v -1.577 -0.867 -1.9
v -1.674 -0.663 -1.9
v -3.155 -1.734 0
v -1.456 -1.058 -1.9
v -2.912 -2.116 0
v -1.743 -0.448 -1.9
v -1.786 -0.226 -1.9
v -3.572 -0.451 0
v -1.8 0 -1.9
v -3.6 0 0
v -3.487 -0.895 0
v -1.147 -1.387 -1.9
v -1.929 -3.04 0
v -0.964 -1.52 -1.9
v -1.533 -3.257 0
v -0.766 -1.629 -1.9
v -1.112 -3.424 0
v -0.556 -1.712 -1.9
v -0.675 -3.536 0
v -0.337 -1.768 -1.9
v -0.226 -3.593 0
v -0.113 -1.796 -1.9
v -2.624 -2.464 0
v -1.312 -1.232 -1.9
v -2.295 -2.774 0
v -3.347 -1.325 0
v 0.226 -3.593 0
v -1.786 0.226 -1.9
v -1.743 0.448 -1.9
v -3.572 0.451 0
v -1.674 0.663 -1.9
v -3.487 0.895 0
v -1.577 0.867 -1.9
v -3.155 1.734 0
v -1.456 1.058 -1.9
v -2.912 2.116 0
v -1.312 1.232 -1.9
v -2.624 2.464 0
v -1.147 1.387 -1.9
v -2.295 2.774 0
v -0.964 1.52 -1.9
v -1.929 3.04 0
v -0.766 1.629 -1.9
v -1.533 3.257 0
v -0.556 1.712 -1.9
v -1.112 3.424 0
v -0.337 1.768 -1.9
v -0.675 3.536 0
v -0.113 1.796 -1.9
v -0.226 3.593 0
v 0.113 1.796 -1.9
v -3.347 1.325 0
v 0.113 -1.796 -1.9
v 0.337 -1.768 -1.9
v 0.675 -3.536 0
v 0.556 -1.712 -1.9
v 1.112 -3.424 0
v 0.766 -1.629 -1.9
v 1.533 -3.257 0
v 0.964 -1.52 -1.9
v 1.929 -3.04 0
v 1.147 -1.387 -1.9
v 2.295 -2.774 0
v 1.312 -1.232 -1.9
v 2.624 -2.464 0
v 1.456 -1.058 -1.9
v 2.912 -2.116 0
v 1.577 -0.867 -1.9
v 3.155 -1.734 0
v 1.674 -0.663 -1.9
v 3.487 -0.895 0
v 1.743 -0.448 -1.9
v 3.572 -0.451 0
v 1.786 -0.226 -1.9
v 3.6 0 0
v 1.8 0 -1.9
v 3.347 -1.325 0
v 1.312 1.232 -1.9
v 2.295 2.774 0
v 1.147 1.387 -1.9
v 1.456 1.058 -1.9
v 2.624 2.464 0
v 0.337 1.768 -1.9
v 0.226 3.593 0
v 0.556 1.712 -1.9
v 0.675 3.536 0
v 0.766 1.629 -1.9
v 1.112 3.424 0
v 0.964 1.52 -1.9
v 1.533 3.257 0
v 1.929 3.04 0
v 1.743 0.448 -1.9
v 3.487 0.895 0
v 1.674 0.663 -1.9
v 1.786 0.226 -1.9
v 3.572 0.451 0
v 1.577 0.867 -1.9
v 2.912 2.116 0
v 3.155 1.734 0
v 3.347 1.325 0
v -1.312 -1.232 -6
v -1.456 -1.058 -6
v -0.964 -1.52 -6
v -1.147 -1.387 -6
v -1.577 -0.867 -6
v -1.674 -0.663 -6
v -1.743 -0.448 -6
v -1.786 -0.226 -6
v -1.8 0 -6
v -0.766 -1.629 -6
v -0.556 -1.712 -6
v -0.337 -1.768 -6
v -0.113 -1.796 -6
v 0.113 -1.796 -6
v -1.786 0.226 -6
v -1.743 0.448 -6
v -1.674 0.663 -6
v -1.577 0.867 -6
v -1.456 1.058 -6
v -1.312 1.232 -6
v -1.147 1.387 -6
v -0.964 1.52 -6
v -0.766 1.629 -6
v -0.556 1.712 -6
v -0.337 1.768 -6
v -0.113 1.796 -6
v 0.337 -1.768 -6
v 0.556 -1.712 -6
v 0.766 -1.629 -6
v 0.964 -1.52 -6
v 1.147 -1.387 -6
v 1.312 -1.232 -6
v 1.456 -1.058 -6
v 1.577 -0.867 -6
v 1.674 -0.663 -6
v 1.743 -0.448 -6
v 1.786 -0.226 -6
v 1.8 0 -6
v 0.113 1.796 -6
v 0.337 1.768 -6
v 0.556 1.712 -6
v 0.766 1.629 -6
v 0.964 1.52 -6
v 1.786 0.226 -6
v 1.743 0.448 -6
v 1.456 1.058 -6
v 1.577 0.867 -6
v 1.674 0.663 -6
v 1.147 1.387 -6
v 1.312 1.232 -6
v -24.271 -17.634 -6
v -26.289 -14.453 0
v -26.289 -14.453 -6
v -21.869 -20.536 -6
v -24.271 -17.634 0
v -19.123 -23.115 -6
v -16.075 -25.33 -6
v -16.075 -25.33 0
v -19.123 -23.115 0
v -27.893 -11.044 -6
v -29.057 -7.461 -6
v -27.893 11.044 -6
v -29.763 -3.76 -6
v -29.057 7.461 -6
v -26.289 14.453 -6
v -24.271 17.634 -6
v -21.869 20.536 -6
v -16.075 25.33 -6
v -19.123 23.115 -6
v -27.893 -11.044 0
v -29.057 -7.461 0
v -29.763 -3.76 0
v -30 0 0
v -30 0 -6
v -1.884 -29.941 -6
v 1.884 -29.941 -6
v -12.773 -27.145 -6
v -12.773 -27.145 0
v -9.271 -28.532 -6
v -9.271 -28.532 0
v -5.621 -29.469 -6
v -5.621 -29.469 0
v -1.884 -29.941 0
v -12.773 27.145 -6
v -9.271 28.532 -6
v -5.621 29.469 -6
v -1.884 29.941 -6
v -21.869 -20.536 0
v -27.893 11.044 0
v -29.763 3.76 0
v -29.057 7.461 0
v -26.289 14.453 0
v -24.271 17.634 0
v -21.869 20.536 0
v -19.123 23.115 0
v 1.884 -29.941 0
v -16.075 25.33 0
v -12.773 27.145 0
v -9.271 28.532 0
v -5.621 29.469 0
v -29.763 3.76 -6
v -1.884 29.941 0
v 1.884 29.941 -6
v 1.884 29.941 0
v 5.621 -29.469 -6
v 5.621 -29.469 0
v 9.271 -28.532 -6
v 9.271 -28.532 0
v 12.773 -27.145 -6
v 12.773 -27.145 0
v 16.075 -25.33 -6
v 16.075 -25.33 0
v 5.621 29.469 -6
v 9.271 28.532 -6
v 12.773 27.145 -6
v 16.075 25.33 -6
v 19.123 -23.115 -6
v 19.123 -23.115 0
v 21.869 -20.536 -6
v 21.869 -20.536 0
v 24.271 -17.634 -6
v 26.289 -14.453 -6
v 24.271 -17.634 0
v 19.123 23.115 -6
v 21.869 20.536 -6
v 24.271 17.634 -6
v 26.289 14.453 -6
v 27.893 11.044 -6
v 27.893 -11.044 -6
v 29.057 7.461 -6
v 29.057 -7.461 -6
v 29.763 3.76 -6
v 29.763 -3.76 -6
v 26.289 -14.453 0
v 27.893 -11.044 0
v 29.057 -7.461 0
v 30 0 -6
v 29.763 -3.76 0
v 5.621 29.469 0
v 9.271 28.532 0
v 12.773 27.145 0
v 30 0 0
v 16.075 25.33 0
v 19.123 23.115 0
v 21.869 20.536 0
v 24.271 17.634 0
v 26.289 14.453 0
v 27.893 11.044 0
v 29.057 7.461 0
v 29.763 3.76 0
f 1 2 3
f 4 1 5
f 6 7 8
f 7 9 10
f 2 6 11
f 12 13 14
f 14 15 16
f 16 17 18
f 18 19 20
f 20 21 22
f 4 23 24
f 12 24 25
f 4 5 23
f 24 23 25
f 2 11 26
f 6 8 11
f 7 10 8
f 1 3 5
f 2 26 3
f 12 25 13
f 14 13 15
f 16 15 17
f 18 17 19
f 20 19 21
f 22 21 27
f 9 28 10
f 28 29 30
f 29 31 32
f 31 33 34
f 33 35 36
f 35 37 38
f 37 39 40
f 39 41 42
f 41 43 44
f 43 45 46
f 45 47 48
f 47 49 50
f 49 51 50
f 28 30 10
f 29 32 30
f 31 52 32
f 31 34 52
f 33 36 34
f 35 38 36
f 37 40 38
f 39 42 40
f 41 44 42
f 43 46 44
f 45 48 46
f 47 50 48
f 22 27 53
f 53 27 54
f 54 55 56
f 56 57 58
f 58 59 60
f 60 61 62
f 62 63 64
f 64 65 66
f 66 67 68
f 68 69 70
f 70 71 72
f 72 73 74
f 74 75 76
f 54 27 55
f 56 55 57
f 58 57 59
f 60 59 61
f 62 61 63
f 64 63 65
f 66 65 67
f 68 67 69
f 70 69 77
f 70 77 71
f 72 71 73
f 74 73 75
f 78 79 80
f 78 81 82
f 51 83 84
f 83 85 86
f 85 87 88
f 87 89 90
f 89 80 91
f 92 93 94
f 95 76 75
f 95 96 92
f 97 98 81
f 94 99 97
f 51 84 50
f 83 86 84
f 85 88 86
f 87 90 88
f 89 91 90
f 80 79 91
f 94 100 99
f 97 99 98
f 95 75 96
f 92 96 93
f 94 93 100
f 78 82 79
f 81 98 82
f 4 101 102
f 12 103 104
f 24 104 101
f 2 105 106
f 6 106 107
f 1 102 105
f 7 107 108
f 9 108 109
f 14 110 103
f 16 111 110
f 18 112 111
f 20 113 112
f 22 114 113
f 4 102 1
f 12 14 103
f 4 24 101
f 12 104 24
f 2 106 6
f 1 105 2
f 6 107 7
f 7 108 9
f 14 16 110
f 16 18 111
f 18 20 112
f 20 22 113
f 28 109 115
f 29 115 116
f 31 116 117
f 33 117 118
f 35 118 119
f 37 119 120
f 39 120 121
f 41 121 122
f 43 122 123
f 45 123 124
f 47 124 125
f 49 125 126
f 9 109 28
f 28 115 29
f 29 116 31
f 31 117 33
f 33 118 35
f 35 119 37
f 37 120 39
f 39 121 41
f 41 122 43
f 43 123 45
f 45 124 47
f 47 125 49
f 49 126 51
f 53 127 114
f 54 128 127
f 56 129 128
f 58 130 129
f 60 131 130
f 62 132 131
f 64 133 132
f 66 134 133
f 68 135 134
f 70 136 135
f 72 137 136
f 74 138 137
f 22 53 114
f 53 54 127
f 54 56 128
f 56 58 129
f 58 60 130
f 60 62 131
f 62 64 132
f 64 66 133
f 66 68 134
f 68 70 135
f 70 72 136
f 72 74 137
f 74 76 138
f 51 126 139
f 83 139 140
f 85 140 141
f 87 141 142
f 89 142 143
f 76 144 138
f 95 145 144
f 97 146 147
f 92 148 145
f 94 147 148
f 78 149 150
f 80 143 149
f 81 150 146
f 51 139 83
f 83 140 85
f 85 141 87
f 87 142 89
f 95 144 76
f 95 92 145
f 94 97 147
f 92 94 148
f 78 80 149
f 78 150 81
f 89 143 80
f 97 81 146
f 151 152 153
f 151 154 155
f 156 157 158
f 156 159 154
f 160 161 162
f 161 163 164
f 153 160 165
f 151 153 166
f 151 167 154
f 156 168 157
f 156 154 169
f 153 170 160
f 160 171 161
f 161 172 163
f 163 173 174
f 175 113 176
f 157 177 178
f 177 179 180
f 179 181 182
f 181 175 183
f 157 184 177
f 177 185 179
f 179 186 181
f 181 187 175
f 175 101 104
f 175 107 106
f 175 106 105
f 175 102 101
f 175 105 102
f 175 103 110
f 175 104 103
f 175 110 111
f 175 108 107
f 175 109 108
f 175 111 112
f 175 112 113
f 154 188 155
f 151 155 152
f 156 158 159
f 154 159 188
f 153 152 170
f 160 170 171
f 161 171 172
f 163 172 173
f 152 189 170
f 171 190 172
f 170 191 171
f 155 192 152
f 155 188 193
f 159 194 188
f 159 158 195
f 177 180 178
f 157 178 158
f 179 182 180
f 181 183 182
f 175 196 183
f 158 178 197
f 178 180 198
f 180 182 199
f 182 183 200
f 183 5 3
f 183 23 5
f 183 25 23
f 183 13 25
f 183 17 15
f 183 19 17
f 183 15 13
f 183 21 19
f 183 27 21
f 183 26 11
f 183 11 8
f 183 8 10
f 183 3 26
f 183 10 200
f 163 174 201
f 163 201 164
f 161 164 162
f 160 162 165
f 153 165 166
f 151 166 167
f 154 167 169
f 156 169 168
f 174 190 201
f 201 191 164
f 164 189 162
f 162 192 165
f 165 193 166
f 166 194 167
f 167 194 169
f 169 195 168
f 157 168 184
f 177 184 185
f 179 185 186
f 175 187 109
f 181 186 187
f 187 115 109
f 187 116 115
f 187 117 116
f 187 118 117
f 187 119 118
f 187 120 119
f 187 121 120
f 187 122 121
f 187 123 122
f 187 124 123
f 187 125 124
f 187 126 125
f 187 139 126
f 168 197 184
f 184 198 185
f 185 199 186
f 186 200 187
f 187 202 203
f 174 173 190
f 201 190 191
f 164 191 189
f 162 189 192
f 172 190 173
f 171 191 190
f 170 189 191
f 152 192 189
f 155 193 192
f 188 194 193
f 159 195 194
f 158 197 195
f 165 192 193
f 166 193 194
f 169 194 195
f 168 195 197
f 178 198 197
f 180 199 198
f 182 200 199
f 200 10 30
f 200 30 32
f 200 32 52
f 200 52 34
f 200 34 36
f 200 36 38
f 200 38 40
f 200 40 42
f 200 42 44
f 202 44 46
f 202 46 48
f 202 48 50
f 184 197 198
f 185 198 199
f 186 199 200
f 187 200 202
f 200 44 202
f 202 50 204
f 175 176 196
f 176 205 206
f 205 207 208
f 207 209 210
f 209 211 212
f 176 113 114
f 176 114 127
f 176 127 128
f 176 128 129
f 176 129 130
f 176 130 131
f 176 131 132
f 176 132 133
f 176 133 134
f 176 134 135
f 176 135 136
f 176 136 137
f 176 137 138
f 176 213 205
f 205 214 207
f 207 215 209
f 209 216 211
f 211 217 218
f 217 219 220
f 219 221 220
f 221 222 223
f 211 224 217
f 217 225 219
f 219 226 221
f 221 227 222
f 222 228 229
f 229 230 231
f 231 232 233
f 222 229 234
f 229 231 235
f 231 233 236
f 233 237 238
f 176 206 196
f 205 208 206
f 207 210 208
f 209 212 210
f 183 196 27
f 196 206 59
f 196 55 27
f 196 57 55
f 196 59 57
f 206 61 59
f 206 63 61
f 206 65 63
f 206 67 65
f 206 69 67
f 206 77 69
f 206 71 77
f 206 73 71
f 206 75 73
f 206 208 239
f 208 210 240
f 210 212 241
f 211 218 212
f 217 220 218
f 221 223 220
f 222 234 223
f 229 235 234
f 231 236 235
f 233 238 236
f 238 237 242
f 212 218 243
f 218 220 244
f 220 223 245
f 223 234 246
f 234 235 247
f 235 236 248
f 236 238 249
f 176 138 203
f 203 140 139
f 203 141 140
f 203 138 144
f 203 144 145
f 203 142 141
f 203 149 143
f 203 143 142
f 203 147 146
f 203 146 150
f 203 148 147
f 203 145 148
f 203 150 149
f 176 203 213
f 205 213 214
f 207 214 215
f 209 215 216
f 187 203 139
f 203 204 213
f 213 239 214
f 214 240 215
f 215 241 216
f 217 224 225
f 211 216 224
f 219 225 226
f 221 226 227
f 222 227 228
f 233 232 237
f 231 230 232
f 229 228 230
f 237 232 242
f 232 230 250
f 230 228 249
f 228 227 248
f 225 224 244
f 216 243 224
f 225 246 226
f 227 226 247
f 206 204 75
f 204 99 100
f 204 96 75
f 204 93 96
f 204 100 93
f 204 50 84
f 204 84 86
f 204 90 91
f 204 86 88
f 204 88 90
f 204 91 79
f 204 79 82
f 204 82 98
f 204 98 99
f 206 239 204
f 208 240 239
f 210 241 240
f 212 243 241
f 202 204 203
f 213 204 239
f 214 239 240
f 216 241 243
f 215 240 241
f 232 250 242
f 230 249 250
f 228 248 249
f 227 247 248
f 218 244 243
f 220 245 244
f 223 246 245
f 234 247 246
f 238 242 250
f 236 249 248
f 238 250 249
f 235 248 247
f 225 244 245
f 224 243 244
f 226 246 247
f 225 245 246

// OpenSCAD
$fn = 50;

difference() {
	union() {
		translate(v = [0, 0, -6.0]) {
			cylinder(h = 6, r = 30.0);
		}
	}
	union() {
		translate(v = [0, 0, 0]) {
			rotate(a = [0, 0, 0]) {
				difference() {
					union() {
						translate(v = [0, 0, -9.0]) {
							cylinder(h = 9, r = 1.5);
						}
						translate(v = [0, 0, -1.9]) {
							cylinder(h = 1.9, r1 = 1.8, r2 = 3.6);
						}
						translate(v = [0, 0, -9.0]) {
							cylinder(h = 9, r = 1.8);
						}
						translate(v = [0, 0, -9.0]) {
							cylinder(h = 9, r = 1.5);
						}
					}
					union();
				}
			}
		}
	}
}
